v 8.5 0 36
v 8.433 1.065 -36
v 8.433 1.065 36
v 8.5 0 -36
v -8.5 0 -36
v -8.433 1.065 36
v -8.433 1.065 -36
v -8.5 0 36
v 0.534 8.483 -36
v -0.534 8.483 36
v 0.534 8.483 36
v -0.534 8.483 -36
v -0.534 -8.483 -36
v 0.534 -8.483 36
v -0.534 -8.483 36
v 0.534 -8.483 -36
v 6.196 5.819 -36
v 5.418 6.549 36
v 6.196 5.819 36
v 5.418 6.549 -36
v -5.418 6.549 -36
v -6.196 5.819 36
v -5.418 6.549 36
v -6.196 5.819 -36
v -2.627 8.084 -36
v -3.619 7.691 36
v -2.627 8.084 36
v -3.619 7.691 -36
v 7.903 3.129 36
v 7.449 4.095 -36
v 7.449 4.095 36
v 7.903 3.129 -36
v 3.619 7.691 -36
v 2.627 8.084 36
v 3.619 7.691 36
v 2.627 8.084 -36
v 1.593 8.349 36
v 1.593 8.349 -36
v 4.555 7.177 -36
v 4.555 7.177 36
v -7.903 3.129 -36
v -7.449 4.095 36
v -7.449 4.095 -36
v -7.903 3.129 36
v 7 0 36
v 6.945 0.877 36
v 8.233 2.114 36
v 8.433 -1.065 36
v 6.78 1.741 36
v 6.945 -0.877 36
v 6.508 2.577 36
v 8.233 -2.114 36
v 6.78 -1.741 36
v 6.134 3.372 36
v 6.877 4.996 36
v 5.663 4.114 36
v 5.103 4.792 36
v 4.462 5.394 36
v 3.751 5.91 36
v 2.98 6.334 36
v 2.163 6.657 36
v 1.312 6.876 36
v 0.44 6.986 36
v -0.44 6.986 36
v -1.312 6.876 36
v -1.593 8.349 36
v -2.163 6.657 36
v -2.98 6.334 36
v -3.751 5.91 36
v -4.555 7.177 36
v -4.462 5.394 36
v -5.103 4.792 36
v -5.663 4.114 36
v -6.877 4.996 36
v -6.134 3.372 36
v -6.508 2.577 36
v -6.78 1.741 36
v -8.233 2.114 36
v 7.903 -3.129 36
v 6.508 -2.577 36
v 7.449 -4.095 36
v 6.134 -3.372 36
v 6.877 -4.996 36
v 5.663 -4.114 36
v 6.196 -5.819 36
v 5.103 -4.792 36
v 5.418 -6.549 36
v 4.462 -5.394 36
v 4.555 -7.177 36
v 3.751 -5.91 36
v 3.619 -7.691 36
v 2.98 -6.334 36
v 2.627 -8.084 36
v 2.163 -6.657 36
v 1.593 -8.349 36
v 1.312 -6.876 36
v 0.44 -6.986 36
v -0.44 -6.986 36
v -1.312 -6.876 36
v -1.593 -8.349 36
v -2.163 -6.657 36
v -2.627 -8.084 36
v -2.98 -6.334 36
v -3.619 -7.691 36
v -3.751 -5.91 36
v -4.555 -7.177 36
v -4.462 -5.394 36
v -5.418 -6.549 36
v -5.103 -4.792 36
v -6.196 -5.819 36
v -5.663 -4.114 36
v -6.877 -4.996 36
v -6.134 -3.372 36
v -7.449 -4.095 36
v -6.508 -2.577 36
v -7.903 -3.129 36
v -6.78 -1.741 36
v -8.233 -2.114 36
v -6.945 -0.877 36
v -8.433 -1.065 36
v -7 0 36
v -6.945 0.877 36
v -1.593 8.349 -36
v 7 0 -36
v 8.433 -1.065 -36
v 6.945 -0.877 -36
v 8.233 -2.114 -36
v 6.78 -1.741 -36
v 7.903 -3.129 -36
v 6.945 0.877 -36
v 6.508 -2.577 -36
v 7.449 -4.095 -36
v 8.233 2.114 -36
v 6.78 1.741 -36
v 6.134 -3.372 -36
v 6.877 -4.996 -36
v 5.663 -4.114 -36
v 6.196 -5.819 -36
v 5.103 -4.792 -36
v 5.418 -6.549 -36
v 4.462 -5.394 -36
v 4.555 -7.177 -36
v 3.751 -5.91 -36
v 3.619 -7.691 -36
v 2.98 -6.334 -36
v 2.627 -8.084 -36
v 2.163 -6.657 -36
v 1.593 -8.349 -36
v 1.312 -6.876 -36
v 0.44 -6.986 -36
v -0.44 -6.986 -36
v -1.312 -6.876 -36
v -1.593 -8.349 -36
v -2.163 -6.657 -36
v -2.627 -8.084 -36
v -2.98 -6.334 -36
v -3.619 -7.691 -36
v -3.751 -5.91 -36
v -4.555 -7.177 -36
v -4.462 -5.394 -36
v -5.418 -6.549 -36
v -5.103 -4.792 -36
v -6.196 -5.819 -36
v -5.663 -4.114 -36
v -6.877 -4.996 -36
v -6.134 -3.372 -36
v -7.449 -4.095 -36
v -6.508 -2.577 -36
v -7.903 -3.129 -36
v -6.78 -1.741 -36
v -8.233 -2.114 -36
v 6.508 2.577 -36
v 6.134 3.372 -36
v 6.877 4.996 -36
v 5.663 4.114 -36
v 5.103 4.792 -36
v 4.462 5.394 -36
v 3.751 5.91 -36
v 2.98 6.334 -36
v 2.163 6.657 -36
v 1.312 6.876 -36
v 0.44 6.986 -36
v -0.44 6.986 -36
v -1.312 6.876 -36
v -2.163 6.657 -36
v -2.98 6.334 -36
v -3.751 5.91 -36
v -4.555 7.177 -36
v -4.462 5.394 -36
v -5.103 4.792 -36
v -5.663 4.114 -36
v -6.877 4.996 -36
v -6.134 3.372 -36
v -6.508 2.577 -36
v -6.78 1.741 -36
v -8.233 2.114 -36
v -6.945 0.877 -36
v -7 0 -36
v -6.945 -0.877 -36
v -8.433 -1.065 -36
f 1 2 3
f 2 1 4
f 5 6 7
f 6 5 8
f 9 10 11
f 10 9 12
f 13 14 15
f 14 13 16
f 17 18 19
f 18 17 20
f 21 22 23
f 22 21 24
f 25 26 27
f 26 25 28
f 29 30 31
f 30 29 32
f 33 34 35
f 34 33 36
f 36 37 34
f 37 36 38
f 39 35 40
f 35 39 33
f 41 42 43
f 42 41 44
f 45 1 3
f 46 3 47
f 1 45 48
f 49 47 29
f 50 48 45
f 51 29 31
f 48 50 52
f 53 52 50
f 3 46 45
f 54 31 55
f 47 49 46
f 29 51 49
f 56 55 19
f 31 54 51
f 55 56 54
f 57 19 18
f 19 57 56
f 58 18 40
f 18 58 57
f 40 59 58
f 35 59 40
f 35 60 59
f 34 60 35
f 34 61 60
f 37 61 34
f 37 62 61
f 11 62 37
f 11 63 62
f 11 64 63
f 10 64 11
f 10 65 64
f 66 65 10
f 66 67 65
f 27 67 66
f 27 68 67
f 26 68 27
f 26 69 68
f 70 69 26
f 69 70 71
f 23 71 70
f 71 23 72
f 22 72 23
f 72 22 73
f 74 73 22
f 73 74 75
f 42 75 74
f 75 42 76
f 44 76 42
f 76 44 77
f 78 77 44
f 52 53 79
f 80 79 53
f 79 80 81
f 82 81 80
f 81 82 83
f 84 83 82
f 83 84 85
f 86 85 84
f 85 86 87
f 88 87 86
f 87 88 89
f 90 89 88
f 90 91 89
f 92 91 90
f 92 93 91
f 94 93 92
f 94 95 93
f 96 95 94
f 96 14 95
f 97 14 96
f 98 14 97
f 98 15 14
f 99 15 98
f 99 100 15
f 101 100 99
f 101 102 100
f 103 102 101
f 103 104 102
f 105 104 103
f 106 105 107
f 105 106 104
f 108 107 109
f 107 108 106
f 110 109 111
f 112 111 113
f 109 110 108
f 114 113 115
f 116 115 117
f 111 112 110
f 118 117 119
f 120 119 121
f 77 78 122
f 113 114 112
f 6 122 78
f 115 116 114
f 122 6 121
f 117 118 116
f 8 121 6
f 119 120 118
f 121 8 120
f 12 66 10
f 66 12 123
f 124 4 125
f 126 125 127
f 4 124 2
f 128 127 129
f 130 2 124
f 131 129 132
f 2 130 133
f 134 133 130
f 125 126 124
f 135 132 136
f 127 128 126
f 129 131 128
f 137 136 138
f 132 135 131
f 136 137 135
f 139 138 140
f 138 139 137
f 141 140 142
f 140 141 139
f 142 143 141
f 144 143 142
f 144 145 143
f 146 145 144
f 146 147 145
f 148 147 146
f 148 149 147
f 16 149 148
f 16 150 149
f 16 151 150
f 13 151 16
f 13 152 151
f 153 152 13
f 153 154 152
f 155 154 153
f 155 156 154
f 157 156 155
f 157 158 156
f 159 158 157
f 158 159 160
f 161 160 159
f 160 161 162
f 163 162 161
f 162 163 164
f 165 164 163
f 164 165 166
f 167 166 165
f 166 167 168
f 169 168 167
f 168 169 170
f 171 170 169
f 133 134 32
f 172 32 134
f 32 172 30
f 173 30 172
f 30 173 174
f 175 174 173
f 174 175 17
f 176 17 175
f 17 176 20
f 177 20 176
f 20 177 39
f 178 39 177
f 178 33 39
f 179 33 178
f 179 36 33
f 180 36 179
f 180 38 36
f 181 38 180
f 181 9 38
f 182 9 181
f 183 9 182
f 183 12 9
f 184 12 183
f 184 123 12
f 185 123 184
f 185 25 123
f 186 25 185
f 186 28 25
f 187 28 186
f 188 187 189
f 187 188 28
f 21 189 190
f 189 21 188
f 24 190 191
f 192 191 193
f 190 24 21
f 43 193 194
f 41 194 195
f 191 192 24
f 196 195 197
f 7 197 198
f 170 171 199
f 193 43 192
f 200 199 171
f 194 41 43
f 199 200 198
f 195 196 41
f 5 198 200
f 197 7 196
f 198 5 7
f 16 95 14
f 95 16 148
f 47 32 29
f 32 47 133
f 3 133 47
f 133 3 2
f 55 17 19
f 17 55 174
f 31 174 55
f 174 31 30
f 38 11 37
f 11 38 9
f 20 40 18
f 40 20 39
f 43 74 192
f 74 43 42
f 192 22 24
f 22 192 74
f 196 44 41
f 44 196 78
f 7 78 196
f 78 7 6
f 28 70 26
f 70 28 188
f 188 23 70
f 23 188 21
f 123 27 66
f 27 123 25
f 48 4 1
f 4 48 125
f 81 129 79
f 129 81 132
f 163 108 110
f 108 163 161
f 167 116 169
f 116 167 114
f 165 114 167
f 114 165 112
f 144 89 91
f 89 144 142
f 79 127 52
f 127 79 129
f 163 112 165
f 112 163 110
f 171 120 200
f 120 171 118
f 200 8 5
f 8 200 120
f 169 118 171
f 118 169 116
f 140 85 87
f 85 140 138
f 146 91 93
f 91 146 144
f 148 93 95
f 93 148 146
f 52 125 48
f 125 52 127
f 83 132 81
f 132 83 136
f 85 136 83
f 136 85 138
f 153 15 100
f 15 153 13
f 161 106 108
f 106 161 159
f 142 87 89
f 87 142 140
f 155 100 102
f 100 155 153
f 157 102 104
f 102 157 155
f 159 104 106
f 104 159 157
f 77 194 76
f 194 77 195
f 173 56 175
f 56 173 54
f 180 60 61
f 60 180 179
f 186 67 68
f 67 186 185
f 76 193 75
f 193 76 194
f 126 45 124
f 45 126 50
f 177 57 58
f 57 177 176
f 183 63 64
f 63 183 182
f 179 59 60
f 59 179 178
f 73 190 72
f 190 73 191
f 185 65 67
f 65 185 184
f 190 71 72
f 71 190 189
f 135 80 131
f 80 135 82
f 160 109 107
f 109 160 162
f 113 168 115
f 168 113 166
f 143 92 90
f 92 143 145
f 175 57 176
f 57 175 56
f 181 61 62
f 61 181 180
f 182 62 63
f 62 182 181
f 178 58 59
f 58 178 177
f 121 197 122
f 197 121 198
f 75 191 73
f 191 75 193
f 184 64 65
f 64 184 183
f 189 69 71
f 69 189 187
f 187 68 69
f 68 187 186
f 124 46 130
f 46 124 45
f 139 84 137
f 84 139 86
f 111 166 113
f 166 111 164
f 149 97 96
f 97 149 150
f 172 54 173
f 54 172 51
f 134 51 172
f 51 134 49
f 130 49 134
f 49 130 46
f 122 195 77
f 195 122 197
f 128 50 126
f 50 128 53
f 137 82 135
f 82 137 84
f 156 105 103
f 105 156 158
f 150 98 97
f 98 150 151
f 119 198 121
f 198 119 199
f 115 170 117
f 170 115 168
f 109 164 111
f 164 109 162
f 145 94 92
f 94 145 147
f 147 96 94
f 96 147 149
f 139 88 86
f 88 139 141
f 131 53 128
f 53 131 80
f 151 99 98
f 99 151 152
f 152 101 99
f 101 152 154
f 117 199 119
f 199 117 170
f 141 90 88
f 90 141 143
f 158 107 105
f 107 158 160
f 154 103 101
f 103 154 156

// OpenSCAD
$fn = 50;


difference() {
	union() {
		translate(v = [0, 0, -36.0000000000]) {
			cylinder(h = 72, r = 8.5000000000);
		}
	}
	union() {
		translate(v = [0, 0, -100.0000000000]) {
			cylinder(h = 200, r = 7);
		}
	}
}
